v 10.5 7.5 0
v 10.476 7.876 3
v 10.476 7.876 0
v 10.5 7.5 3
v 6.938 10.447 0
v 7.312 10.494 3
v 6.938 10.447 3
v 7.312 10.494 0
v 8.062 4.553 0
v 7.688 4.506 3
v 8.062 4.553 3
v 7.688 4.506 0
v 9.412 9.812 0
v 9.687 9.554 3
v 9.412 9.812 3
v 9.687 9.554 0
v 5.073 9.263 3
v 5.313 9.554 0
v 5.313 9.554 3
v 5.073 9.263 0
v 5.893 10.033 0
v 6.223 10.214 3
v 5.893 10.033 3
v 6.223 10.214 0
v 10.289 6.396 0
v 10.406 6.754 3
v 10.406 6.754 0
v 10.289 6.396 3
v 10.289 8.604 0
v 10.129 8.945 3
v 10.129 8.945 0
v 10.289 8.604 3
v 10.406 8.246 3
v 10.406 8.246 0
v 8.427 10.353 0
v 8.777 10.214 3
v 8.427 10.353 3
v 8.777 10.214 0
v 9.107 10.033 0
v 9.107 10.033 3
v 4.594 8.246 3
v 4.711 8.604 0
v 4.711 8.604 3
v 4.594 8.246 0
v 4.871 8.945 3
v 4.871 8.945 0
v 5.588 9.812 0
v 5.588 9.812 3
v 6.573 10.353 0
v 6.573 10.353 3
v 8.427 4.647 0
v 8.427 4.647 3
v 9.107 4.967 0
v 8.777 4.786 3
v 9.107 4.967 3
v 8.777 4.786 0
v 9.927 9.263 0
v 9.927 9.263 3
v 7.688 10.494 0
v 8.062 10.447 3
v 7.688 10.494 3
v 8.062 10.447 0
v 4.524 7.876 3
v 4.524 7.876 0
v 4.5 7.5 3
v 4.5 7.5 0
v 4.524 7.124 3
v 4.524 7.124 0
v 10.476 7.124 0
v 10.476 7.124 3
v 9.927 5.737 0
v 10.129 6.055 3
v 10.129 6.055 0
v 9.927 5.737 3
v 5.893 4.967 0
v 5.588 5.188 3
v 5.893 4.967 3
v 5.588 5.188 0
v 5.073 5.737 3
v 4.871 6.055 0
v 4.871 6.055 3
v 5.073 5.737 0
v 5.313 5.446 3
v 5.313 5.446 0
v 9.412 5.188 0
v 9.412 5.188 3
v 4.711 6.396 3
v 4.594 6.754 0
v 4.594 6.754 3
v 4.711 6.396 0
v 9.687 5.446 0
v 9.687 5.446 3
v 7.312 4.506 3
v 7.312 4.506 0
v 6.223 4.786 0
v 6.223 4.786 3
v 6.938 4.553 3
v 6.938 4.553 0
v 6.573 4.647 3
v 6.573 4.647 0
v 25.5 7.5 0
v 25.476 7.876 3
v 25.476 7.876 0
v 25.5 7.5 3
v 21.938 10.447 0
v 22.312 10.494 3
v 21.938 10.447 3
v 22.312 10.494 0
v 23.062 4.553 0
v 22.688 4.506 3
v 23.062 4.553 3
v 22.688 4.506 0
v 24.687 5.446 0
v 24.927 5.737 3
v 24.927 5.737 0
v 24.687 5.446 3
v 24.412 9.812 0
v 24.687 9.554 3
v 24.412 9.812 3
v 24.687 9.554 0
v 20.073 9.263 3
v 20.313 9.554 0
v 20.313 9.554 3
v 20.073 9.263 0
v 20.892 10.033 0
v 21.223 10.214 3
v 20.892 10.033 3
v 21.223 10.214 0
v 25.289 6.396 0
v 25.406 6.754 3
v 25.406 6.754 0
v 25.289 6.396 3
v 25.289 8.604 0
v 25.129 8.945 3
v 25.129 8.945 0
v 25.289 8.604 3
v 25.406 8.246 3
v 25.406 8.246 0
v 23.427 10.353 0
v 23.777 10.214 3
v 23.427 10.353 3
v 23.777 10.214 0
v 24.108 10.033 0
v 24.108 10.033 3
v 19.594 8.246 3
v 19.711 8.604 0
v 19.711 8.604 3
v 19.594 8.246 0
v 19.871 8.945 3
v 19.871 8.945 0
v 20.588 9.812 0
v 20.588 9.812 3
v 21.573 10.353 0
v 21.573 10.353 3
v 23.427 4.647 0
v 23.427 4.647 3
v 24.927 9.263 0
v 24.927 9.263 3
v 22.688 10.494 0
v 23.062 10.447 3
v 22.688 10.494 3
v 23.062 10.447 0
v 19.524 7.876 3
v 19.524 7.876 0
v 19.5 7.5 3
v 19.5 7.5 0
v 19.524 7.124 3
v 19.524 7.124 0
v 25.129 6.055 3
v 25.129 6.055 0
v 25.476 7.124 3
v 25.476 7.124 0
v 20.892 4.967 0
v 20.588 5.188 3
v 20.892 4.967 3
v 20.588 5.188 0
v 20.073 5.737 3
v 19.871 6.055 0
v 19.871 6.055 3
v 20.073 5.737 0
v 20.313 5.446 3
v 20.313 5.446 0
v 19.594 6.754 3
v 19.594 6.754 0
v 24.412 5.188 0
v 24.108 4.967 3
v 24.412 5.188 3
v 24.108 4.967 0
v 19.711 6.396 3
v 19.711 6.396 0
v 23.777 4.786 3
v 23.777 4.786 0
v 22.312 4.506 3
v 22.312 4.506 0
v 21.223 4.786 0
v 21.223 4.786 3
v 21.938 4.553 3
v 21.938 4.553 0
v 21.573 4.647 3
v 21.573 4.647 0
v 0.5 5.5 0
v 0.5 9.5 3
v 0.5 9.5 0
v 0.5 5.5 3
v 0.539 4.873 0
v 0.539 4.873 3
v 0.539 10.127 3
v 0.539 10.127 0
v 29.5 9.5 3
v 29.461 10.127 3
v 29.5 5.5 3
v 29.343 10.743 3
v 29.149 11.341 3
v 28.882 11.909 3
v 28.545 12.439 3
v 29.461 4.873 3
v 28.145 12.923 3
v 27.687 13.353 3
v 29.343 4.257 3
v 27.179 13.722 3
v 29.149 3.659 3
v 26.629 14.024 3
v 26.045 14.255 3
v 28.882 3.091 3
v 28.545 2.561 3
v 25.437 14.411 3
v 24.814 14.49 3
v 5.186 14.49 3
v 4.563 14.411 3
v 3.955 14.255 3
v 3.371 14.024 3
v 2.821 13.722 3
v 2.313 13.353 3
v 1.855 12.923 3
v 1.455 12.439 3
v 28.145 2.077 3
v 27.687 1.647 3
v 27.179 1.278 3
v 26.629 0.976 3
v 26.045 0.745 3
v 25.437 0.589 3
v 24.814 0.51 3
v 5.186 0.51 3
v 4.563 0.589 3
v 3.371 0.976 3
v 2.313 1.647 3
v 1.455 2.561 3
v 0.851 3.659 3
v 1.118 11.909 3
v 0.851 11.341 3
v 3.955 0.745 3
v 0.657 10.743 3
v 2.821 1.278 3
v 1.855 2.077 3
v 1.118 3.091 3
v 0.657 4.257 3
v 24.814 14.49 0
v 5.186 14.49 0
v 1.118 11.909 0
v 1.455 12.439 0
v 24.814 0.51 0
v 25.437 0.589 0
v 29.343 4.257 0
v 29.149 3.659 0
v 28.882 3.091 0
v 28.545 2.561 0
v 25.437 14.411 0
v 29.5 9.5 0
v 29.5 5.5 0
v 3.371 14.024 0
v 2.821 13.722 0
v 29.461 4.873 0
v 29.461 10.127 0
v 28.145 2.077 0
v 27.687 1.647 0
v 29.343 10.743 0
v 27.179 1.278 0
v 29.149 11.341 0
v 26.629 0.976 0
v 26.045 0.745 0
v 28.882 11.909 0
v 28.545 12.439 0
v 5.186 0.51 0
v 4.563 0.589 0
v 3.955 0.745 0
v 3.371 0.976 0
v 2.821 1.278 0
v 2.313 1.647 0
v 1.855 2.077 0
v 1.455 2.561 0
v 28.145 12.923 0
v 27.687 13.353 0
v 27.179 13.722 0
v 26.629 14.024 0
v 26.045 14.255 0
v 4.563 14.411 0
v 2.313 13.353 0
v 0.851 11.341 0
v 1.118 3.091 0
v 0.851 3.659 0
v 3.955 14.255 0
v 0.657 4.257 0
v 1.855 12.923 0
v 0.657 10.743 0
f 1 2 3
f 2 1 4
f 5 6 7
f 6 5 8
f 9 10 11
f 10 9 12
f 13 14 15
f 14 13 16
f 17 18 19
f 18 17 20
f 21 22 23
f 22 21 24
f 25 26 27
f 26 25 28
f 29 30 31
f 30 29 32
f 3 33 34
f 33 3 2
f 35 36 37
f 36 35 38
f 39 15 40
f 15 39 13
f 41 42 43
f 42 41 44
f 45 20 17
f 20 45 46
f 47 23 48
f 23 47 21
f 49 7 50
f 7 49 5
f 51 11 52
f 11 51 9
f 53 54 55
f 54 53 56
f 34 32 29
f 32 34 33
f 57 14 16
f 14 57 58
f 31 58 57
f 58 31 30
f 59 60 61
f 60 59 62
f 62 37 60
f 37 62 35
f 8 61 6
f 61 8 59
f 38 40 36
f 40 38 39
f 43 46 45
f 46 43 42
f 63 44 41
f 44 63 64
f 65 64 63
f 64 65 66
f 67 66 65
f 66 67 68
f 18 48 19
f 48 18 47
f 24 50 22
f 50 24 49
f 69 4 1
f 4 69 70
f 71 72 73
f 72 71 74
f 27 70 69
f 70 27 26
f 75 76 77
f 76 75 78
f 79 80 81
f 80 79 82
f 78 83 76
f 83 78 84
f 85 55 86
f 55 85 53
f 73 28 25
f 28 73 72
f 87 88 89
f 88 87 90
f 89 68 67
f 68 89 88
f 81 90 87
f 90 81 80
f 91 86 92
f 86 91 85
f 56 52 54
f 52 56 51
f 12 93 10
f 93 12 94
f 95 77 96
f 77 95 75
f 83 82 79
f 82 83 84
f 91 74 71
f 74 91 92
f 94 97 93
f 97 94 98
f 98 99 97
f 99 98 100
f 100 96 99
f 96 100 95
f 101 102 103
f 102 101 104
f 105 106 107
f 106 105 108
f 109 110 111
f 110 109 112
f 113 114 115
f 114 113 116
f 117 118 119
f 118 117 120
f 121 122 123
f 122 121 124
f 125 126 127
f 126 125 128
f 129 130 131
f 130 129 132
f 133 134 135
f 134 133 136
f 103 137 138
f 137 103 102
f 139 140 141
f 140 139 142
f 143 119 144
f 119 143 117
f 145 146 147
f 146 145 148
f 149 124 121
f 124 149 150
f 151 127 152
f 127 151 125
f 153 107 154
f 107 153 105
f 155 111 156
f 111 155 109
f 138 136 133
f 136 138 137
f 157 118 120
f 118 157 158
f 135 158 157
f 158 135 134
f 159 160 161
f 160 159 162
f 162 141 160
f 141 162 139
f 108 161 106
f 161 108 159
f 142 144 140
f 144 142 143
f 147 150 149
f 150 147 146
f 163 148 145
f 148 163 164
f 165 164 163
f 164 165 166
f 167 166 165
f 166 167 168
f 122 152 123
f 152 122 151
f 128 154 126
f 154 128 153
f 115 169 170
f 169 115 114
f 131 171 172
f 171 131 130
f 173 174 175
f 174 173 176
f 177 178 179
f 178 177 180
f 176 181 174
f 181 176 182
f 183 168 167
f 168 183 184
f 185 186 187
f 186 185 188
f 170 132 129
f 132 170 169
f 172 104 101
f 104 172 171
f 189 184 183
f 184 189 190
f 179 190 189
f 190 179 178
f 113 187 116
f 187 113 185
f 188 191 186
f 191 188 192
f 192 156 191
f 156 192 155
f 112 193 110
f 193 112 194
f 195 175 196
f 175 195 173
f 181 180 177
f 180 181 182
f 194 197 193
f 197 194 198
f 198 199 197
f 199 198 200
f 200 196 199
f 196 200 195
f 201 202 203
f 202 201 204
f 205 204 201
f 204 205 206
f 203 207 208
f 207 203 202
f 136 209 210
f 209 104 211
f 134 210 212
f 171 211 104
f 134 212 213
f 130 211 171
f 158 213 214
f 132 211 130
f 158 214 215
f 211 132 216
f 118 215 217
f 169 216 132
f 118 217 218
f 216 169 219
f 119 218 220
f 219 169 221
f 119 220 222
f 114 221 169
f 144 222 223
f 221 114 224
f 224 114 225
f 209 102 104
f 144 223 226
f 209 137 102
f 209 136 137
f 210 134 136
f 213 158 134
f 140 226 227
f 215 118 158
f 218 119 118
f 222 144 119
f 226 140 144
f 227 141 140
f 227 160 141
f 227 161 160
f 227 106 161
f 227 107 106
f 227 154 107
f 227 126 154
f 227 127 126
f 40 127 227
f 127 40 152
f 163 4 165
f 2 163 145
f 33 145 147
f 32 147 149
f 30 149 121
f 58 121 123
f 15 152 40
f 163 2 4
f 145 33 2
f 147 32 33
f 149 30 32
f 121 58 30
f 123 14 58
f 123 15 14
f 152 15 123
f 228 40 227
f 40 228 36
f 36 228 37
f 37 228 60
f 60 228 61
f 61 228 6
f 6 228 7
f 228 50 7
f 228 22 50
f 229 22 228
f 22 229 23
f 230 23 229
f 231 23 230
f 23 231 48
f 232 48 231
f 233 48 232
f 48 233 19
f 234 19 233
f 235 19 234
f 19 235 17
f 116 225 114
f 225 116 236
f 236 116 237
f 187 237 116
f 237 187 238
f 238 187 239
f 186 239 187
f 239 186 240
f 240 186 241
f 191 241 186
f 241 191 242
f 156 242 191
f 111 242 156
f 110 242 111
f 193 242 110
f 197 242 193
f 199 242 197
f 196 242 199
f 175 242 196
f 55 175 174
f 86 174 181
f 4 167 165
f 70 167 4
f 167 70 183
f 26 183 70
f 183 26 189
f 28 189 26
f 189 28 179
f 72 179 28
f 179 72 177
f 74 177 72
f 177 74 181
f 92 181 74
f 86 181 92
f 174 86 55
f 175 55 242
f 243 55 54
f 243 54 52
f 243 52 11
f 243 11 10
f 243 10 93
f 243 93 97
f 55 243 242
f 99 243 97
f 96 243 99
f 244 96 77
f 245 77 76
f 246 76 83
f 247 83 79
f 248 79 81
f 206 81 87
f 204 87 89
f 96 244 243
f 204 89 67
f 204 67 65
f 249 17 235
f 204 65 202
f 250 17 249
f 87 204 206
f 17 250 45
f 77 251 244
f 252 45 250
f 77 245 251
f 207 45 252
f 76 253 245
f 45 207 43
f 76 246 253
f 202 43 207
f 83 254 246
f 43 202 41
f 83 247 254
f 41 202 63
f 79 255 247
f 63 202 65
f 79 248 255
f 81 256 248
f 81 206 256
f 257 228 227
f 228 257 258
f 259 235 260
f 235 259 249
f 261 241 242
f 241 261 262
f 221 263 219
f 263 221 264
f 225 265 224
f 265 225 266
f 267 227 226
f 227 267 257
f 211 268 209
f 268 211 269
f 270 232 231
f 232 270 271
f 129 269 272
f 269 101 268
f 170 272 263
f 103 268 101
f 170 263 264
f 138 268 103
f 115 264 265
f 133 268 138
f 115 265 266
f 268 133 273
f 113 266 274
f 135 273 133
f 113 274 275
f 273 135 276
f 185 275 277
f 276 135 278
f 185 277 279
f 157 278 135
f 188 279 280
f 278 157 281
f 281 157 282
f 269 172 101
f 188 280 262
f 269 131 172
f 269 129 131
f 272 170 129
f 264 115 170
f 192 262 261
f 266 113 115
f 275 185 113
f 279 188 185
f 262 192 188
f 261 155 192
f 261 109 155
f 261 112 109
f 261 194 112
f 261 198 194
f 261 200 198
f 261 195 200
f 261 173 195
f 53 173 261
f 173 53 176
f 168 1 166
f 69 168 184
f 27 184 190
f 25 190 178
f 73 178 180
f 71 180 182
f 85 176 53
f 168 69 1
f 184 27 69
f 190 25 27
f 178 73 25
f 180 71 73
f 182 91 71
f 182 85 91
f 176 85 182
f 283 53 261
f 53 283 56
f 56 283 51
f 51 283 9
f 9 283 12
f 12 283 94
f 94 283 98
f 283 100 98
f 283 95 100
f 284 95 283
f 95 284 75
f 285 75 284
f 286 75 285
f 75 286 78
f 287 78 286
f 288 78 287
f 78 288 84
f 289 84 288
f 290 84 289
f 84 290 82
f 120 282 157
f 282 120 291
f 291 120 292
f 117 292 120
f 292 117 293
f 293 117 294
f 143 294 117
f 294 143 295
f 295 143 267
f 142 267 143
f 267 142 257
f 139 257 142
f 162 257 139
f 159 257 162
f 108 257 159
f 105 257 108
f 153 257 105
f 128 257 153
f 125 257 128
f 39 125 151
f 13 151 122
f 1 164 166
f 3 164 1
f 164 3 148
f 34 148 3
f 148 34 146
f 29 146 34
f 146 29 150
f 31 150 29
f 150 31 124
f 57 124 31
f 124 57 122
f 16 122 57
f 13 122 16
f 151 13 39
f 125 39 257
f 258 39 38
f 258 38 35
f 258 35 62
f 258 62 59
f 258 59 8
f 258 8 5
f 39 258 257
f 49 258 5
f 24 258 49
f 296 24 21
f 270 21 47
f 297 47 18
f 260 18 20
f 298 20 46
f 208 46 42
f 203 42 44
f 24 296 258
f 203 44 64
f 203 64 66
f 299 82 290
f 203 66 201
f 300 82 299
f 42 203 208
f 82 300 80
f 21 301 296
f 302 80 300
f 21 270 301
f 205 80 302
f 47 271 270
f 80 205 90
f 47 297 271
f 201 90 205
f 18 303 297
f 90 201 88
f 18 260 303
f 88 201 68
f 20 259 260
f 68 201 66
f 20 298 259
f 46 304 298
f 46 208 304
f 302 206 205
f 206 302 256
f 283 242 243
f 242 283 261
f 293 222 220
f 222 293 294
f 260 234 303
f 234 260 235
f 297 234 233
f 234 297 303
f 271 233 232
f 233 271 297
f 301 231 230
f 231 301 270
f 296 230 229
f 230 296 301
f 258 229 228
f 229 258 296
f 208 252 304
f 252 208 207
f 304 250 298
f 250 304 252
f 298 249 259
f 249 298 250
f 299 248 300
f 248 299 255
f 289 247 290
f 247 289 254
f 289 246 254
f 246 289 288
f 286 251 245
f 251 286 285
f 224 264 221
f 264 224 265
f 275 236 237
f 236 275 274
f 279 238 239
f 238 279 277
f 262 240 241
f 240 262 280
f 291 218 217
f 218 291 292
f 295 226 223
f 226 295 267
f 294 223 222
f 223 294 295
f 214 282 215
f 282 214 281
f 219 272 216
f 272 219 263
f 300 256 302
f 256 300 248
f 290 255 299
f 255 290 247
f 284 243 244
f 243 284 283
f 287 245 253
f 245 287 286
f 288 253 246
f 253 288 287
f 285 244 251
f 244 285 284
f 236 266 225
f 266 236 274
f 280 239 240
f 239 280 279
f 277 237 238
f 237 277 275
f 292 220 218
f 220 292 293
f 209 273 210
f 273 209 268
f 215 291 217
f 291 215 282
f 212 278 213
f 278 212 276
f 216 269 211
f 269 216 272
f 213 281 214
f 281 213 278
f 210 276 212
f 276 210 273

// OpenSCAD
// Generated by SolidPython 1.1.3 on 2023-01-09 14:52:21
$fn = 50;


difference() {
	union() {
		translate(v = [15.0000000000, 7.5000000000, 0]) {
			rotate(a = [0, 0, 0]) {
				hull() {
					translate(v = [-9.5000000000, 2.0000000000, 0]) {
						rotate(a = [0, 0, 0]) {
							translate(v = [0, 0, 0]) {
								rotate(a = [0, 0, 0]) {
									cylinder(h = 3, r = 5);
								}
							}
						}
					}
					translate(v = [9.5000000000, 2.0000000000, 0]) {
						rotate(a = [0, 0, 0]) {
							translate(v = [0, 0, 0]) {
								rotate(a = [0, 0, 0]) {
									cylinder(h = 3, r = 5);
								}
							}
						}
					}
					translate(v = [-9.5000000000, -2.0000000000, 0]) {
						rotate(a = [0, 0, 0]) {
							translate(v = [0, 0, 0]) {
								rotate(a = [0, 0, 0]) {
									cylinder(h = 3, r = 5);
								}
							}
						}
					}
					translate(v = [9.5000000000, -2.0000000000, 0]) {
						rotate(a = [0, 0, 0]) {
							translate(v = [0, 0, 0]) {
								rotate(a = [0, 0, 0]) {
									cylinder(h = 3, r = 5);
								}
							}
						}
					}
				}
			}
		}
	}
	union() {
		translate(v = [7.5000000000, 7.5000000000, 0]) {
			rotate(a = [0, 0, 0]) {
				translate(v = [0, 0, -50]) {
					rotate(a = [0, 0, 0]) {
						cylinder(h = 100, r = 3.0000000000);
					}
				}
			}
		}
		translate(v = [22.5000000000, 7.5000000000, 0]) {
			rotate(a = [0, 0, 0]) {
				translate(v = [0, 0, -50]) {
					rotate(a = [0, 0, 0]) {
						cylinder(h = 100, r = 3.0000000000);
					}
				}
			}
		}
	}
}
/***********************************************
*********      SolidPython code:      **********
************************************************
 
from solid import *
import os
import subprocess

import oomB

import opsc_library_gen

mode = "laser"
#mode = "3d_print"

defined_objects = {}

radius_dict = {}
countersunk_dict = {}


def set_mode(m):
    global mode
    mode = m
    radius_dict['M6'] = 6.5/2
    radius_dict['M3'] = 3.3/2
    if mode == "laser":
        radius_dict['M6'] = 6/2
        radius_dict['M3'] = 3/2

    countersunk_dict['M3'] = {}
    countersunk_dict['M3']['little_rad'] = radius_dict['M3']
    countersunk_dict['M3']['big_rad'] = (5.5+0.6)/2
    if mode == "laser":
        countersunk_dict['M3']['big_rad'] = (4.75+0.6)/2
        countersunk_dict['M3']['little_rad'] = (4.75+0.6)/2

    countersunk_dict['M3']['height'] = 1.7


def opsc_make_object(filename, objects, save_type="none",resolution=50, layers = 1, tilediff = 200, mode="laser"):
    set_mode(mode)
    save_type = save_type.lower()
    os.makedirs(os.path.dirname(filename), exist_ok=True)
    final_object = opsc_get_object(objects)
    # Save the final object to the specified filename    
    scad_render_to_file(final_object, filename, file_header='$fn = %s;' % resolution, include_orig_code=True)
    if mode == "laser":
        filename_laser = filename.replace(".scad","-flat.scad")
        scad_render_to_file(getLaser(final_object, layers=layers, tilediff=tilediff), filename_laser, file_header='$fn = %s;' % resolution, include_orig_code=True)
        if save_type == "all":
            saveToAll(filename_laser)
        elif save_type == "dxf":
            saveToDxf(filename_laser)
    if save_type == "all":
        saveToAll(filename)
    elif save_type == "dxf":
        saveToDxf(filename)


def opsc_get_object(objects):
    # Create the solidpython objects
    positive_objects = [get_opsc_item(obj) for obj in objects if obj['type'] == 'positive']
    negative_objects = [get_opsc_item(obj) for obj in objects if obj['type'] == 'negative']
    # Union the positive objects
    positive_object = union()(*positive_objects)
    # Union the negative objects
    negative_object = union()(*negative_objects)
    # Create the final object by subtracting the negative objects from the positive objects
    return difference()(positive_object, negative_object)

def get_opsc_item(params):
    # A dictionary to map radius string values to numerical values
    #radius_dict = {'small': 5, 'medium': 10, 'large': 15}
    # An array of function names for basic shapes
    basic_shapes = ['cube', 'sphere', 'cylinder']
    
    # An array of function names for other shapes
    other_shapes = ['hole', 'slot', 'rounded_rectangle', 'countersunk']
    


    # Convert radius to r if present, and remove radius from the params dictionary
    if 'radius' in params:
        if isinstance(params['radius'], str):
            # Use the radius_dict to map the radius string value to a numerical value
            params['r'] = radius_dict[params['radius']]
        else:
            params['r'] = params['radius']
        del params['radius']
    

    # Check if the object type is a basic shape
    if params['shape'] in basic_shapes:
        # Remove shape and unexpected dictionary values
        allowed_keys = {'size', 'r', 'r1', 'r2', 'd', 'h', 'rw', 'rh', 'dw', 'dh'}
        shape_params = {k: v for k, v in params.items() if k in allowed_keys}

        # Call the corresponding function for the shape parameter, using ** notation to pass the shape_params dictionary as keyword arguments
        return get_opsc_transform(params,globals()[params['shape']](**shape_params))
    
    # If the object type is not a basic shape, check if it's a defined object or one of the other shapes
    elif params['shape'] in other_shapes:
        # Call the corresponding function for the shape parameter, passing the params dictionary as an argument
        p2 = copy.deepcopy(params)
        p2["pos"] = [0,0,0]
        return get_opsc_transform(params,globals()[params['shape']](p2))
    
    # If the object is not a basic shape or a defined object, try to import it from a .scad file
    else:
        obj = defined_objects[params['shape']]
        return get_opsc_transform(params,obj)

def get_opsc_transform(params, solid_obj):
    # Rotate the object based on the 'rot' field in the params dictionary, or the 'rotX', 'rotY', and 'rotZ' fields if 'rot' is not present
    rot = params.get('rot', [])
    if rot:
        rotX, rotY, rotZ = rot
    else:
        rotX = params.get('rotX', 0)
        rotY = params.get('rotY', 0)
        rotZ = params.get('rotZ', 0)
    solid_obj = rotate([rotX, rotY, rotZ])(solid_obj)

    # Translate the object based on the 'pos' field in the params dictionary, or the 'x', 'y', and 'z' fields if 'pos' is not present
    pos = params.get('pos', [])
    if pos:
        x, y, z = pos
    else:
        x = params.get('x', 0)
        y = params.get('y', 0)
        z = params.get('z', 0)
    solid_obj = translate([x, y, z])(solid_obj)
    return solid_obj


import random

def opsc_easy_array(type, shape, repeats, pos_start, shift_arr, **kwargs):
    for i in range(0,3):
        repeats.append(1)
        pos_start.append(0)
        shift_arr.append(0)
    return_objects = []

    for x in range(0,repeats[0]):
        for y in range(0,repeats[1]):
            for z in range(0,repeats[2]):
                return_objects.append(opsc_easy(type, shape, pos=[pos_start[0]+x*shift_arr[0],pos_start[1]+y*shift_arr[1],pos_start[2]+z*shift_arr[2]], **kwargs))
    return return_objects                



def opsc_easy(type, shape, **kwargs):
    obj = {
        'type': type,
        'shape': shape
    }
    for param in ['size', 'r', 'r1', 'r2', 'd', 'h', 'rw', 'rh', 'dw', 'dh', 'pos', 'x', 'y', 'z', 'rot', 'rotX', 'rotY', 'rotZ', "w"]:
        if param in kwargs:
            obj[param] = kwargs[param]
    return obj

def hole(params):
    p2 = copy.deepcopy(params)  
    # Check if the radius is a string and replace it with the corresponding value from the dictionary
    if isinstance(p2['r'], str):
        p2['r'] = radius_dict[p2['r']]
    
    # Set the height to 100 if not specified
    if 'h' not in p2:
        p2['h'] = 100
        p2["pos"] = [0,0,-50]
    p2["center"] = True
    # Create the cylinder object
    p2["shape"] = "cylinder"
    p2["type"] = "positive"

    return get_opsc_item(p2)

import copy

def countersunk(params):
    p2 = copy.deepcopy(params)
    counter_rad = p2['r']
    p2['r'] = radius_dict[p2['r']]
    hp = copy.deepcopy(p2)
    hp["type"] = "positive"
    hp["shape"] = "hole"
    del hp["rot"]
    hol = get_opsc_item(hp)
    
    cp = copy.deepcopy(p2)
    cp["h"] = countersunk_dict[counter_rad]["height"]
    cp["r2"] = countersunk_dict[counter_rad]["little_rad"]
    cp["r1"] = countersunk_dict[counter_rad]["big_rad"]
    del cp["r"]
    del cp["rot"]
    cp["type"] = "positive"
    cp["shape"] = "cylinder"
    cp["pos"] = [0,0,0]

    top = get_opsc_item(cp)
    return union()(hol,top)



def slot(params):  
    p2 = copy.deepcopy(params) 
    if isinstance(p2['r'], str):
        p2['r'] = radius_dict[p2['r']]
    p2["type"] = "positive"
    p2["shape"] = "hole"
    del p2["rot"]
    p2["pos"] = [0,0,0]
    left = copy.deepcopy(p2)
    right = copy.deepcopy(p2)
    left["pos"][0] = p2["w"] / 2 - p2["r"] 
    
    right["pos"][0] = -p2["w"] / 2 + p2["r"] 
    pass
    leftObj = get_opsc_item(left)
    rightObj = get_opsc_item(right)
    return hull()(leftObj, rightObj)

def rounded_rectangle(params):   
    p2 = copy.deepcopy(params) 
    p2["h"] = p2["size"][2]
    p2["pos"] = p2.get("pos", [0, 0, 0]) 
    p2["type"] = "positive"
    p2["shape"] = "hole"
    p2["pos"] = [0,0,0]
    
    if 'rot' in p2:
        del p2["rot"]   
    if 'r' not in p2:
        p2["r"] = 5 
    tl = copy.deepcopy(p2)
    tr = copy.deepcopy(p2)
    bl = copy.deepcopy(p2)
    br = copy.deepcopy(p2)
    tl["pos"][0] = -(p2["size"][0] - p2["r"]*2)/2
    tl["pos"][1] = (p2["size"][1] - p2["r"]*2)/2
    tr["pos"][0] = (p2["size"][0] - p2["r"]*2)/2
    tr["pos"][1] = (p2["size"][1] - p2["r"]*2)/2
    bl["pos"][0] = -(p2["size"][0] - p2["r"]*2)/2
    bl["pos"][1] = -(p2["size"][1] - p2["r"]*2)/2
    br["pos"][0] = (p2["size"][0] - p2["r"]*2)/2
    br["pos"][1] = -(p2["size"][1] - p2["r"]*2)/2
    del tl["size"]
    del tr["size"]
    del bl["size"]
    del br["size"]
    tlo = get_opsc_item(tl)
    tro = get_opsc_item(tr)
    blo = get_opsc_item(bl)
    bro = get_opsc_item(br)    
    return hull()(tlo, tro, blo, bro)



def import_scad_object(filename):
    # Import the .scad file and convert it to a solidpython object
    #filename = "parts"
    obj = import_scad(filename)
    return obj.main()
    


import os
import solid as solidpython

# A dictionary to store the defined objects


def load_scad_objects():
    opsc_library_gen.gen_library(defined_objects)

import random

def test(num_objects):
    objects = []
    for i in range(num_objects):
        # Choose a random shape
        #shape = random.choice(['cube', 'sphere', 'cylinder', 'hole', 'slot', "rounded_rectangle"])
        shape = random.choice(["rounded_rectangle"])

        # Choose a random type
        type = random.choice(['positive', 'negative'])
        
        # Create an empty object dictionary
        obj = {'shape': shape, 'type': type}
        
        # Set shape-specific parameters
        if obj['shape'] in ['cube']:
            obj['size'] =  [random.uniform(5, 15), random.uniform(5, 15), random.uniform(5, 15)]
        if obj['shape'] in ['rounded_rectangle']:
            obj['size'] =  [random.uniform(5, 15), random.uniform(5, 15), random.uniform(5, 15)]
            obj['r'] = random.uniform(0.5, 5)
        elif obj['shape'] == 'sphere':
            obj['r'] = random.uniform(5, 15)
        elif obj['shape'] in ['cylinder', 'hole']:
            obj['r'] = random.uniform(0.5, 5)
            obj['h'] = random.uniform(5, 15)
        elif obj['shape'] == 'slot':
            obj['r'] = random.uniform(0.5, 5)
            obj['h'] = random.uniform(5, 15)
            obj['w'] = random.uniform(5, 15)
        
        # Set a random position and rotation
        obj['pos'] = [random.uniform(-20, 20), random.uniform(-20, 20), random.uniform(-20, 20)]
        obj['rot'] = [random.uniform(-180, 180), random.uniform(-180, 180), random.uniform(-180, 180)]
        
        # Add the object to the list
        objects.append(obj)
    return objects

####### old file saving
def saveToAll(fileIn):
    saveToDxf(fileIn)
    saveToPng(fileIn)
    saveToStl(fileIn)
    saveToSvg(fileIn)

def saveToDxf(fileIn, fileOut="", copy_to_laser=True):
    if fileOut == "":
        fileOut = fileIn.replace(".scad",".dxf")
    saveToFile(fileIn, fileOut)


    
def saveToPng(fileIn, fileOut="",extra="--render"):
    if fileOut == "":
        fileOut = fileIn.replace(".scad",".png")
    saveToFile(fileIn, fileOut)

def saveToStl(fileIn, fileOut=""):
    if fileOut == "":
        fileOut = fileIn.replace(".scad",".stl")
    saveToFile(fileIn, fileOut)
    
def saveToSvg(fileIn, fileOut=""):
    if fileOut == "":
        fileOut = fileIn.replace(".scad",".svg")
    saveToFile(fileIn, fileOut)

def saveToFile(fileIn, fileOut,extra=""):
    #extra = extra + " --colorscheme Tomorrow"

    launchStr = 'openscad -o "' + fileOut + '"' + extra + ' "' + fileIn + '"'
    if ".png" in fileOut:
        launchStr = launchStr + " --render"
    print("            saveToFile launch string: " + launchStr)
    subprocess.run(launchStr)
    x=0

def getLaser(final_object,start=1.5,layers=1,thickness=3,tilediff=200):
        rv= []

        for x in range(layers):
            rv.append(translate([0,x*tilediff,0])(
                    projection()(
                        intersection()(translate([-500,-500,start+x*thickness])(cube(size=[1000,1000,0.1])),
                            final_object
                        )
                    )
            )
            )
            
        return union()(rv)

set_mode("laser")
load_scad_objects() 
 
************************************************/
